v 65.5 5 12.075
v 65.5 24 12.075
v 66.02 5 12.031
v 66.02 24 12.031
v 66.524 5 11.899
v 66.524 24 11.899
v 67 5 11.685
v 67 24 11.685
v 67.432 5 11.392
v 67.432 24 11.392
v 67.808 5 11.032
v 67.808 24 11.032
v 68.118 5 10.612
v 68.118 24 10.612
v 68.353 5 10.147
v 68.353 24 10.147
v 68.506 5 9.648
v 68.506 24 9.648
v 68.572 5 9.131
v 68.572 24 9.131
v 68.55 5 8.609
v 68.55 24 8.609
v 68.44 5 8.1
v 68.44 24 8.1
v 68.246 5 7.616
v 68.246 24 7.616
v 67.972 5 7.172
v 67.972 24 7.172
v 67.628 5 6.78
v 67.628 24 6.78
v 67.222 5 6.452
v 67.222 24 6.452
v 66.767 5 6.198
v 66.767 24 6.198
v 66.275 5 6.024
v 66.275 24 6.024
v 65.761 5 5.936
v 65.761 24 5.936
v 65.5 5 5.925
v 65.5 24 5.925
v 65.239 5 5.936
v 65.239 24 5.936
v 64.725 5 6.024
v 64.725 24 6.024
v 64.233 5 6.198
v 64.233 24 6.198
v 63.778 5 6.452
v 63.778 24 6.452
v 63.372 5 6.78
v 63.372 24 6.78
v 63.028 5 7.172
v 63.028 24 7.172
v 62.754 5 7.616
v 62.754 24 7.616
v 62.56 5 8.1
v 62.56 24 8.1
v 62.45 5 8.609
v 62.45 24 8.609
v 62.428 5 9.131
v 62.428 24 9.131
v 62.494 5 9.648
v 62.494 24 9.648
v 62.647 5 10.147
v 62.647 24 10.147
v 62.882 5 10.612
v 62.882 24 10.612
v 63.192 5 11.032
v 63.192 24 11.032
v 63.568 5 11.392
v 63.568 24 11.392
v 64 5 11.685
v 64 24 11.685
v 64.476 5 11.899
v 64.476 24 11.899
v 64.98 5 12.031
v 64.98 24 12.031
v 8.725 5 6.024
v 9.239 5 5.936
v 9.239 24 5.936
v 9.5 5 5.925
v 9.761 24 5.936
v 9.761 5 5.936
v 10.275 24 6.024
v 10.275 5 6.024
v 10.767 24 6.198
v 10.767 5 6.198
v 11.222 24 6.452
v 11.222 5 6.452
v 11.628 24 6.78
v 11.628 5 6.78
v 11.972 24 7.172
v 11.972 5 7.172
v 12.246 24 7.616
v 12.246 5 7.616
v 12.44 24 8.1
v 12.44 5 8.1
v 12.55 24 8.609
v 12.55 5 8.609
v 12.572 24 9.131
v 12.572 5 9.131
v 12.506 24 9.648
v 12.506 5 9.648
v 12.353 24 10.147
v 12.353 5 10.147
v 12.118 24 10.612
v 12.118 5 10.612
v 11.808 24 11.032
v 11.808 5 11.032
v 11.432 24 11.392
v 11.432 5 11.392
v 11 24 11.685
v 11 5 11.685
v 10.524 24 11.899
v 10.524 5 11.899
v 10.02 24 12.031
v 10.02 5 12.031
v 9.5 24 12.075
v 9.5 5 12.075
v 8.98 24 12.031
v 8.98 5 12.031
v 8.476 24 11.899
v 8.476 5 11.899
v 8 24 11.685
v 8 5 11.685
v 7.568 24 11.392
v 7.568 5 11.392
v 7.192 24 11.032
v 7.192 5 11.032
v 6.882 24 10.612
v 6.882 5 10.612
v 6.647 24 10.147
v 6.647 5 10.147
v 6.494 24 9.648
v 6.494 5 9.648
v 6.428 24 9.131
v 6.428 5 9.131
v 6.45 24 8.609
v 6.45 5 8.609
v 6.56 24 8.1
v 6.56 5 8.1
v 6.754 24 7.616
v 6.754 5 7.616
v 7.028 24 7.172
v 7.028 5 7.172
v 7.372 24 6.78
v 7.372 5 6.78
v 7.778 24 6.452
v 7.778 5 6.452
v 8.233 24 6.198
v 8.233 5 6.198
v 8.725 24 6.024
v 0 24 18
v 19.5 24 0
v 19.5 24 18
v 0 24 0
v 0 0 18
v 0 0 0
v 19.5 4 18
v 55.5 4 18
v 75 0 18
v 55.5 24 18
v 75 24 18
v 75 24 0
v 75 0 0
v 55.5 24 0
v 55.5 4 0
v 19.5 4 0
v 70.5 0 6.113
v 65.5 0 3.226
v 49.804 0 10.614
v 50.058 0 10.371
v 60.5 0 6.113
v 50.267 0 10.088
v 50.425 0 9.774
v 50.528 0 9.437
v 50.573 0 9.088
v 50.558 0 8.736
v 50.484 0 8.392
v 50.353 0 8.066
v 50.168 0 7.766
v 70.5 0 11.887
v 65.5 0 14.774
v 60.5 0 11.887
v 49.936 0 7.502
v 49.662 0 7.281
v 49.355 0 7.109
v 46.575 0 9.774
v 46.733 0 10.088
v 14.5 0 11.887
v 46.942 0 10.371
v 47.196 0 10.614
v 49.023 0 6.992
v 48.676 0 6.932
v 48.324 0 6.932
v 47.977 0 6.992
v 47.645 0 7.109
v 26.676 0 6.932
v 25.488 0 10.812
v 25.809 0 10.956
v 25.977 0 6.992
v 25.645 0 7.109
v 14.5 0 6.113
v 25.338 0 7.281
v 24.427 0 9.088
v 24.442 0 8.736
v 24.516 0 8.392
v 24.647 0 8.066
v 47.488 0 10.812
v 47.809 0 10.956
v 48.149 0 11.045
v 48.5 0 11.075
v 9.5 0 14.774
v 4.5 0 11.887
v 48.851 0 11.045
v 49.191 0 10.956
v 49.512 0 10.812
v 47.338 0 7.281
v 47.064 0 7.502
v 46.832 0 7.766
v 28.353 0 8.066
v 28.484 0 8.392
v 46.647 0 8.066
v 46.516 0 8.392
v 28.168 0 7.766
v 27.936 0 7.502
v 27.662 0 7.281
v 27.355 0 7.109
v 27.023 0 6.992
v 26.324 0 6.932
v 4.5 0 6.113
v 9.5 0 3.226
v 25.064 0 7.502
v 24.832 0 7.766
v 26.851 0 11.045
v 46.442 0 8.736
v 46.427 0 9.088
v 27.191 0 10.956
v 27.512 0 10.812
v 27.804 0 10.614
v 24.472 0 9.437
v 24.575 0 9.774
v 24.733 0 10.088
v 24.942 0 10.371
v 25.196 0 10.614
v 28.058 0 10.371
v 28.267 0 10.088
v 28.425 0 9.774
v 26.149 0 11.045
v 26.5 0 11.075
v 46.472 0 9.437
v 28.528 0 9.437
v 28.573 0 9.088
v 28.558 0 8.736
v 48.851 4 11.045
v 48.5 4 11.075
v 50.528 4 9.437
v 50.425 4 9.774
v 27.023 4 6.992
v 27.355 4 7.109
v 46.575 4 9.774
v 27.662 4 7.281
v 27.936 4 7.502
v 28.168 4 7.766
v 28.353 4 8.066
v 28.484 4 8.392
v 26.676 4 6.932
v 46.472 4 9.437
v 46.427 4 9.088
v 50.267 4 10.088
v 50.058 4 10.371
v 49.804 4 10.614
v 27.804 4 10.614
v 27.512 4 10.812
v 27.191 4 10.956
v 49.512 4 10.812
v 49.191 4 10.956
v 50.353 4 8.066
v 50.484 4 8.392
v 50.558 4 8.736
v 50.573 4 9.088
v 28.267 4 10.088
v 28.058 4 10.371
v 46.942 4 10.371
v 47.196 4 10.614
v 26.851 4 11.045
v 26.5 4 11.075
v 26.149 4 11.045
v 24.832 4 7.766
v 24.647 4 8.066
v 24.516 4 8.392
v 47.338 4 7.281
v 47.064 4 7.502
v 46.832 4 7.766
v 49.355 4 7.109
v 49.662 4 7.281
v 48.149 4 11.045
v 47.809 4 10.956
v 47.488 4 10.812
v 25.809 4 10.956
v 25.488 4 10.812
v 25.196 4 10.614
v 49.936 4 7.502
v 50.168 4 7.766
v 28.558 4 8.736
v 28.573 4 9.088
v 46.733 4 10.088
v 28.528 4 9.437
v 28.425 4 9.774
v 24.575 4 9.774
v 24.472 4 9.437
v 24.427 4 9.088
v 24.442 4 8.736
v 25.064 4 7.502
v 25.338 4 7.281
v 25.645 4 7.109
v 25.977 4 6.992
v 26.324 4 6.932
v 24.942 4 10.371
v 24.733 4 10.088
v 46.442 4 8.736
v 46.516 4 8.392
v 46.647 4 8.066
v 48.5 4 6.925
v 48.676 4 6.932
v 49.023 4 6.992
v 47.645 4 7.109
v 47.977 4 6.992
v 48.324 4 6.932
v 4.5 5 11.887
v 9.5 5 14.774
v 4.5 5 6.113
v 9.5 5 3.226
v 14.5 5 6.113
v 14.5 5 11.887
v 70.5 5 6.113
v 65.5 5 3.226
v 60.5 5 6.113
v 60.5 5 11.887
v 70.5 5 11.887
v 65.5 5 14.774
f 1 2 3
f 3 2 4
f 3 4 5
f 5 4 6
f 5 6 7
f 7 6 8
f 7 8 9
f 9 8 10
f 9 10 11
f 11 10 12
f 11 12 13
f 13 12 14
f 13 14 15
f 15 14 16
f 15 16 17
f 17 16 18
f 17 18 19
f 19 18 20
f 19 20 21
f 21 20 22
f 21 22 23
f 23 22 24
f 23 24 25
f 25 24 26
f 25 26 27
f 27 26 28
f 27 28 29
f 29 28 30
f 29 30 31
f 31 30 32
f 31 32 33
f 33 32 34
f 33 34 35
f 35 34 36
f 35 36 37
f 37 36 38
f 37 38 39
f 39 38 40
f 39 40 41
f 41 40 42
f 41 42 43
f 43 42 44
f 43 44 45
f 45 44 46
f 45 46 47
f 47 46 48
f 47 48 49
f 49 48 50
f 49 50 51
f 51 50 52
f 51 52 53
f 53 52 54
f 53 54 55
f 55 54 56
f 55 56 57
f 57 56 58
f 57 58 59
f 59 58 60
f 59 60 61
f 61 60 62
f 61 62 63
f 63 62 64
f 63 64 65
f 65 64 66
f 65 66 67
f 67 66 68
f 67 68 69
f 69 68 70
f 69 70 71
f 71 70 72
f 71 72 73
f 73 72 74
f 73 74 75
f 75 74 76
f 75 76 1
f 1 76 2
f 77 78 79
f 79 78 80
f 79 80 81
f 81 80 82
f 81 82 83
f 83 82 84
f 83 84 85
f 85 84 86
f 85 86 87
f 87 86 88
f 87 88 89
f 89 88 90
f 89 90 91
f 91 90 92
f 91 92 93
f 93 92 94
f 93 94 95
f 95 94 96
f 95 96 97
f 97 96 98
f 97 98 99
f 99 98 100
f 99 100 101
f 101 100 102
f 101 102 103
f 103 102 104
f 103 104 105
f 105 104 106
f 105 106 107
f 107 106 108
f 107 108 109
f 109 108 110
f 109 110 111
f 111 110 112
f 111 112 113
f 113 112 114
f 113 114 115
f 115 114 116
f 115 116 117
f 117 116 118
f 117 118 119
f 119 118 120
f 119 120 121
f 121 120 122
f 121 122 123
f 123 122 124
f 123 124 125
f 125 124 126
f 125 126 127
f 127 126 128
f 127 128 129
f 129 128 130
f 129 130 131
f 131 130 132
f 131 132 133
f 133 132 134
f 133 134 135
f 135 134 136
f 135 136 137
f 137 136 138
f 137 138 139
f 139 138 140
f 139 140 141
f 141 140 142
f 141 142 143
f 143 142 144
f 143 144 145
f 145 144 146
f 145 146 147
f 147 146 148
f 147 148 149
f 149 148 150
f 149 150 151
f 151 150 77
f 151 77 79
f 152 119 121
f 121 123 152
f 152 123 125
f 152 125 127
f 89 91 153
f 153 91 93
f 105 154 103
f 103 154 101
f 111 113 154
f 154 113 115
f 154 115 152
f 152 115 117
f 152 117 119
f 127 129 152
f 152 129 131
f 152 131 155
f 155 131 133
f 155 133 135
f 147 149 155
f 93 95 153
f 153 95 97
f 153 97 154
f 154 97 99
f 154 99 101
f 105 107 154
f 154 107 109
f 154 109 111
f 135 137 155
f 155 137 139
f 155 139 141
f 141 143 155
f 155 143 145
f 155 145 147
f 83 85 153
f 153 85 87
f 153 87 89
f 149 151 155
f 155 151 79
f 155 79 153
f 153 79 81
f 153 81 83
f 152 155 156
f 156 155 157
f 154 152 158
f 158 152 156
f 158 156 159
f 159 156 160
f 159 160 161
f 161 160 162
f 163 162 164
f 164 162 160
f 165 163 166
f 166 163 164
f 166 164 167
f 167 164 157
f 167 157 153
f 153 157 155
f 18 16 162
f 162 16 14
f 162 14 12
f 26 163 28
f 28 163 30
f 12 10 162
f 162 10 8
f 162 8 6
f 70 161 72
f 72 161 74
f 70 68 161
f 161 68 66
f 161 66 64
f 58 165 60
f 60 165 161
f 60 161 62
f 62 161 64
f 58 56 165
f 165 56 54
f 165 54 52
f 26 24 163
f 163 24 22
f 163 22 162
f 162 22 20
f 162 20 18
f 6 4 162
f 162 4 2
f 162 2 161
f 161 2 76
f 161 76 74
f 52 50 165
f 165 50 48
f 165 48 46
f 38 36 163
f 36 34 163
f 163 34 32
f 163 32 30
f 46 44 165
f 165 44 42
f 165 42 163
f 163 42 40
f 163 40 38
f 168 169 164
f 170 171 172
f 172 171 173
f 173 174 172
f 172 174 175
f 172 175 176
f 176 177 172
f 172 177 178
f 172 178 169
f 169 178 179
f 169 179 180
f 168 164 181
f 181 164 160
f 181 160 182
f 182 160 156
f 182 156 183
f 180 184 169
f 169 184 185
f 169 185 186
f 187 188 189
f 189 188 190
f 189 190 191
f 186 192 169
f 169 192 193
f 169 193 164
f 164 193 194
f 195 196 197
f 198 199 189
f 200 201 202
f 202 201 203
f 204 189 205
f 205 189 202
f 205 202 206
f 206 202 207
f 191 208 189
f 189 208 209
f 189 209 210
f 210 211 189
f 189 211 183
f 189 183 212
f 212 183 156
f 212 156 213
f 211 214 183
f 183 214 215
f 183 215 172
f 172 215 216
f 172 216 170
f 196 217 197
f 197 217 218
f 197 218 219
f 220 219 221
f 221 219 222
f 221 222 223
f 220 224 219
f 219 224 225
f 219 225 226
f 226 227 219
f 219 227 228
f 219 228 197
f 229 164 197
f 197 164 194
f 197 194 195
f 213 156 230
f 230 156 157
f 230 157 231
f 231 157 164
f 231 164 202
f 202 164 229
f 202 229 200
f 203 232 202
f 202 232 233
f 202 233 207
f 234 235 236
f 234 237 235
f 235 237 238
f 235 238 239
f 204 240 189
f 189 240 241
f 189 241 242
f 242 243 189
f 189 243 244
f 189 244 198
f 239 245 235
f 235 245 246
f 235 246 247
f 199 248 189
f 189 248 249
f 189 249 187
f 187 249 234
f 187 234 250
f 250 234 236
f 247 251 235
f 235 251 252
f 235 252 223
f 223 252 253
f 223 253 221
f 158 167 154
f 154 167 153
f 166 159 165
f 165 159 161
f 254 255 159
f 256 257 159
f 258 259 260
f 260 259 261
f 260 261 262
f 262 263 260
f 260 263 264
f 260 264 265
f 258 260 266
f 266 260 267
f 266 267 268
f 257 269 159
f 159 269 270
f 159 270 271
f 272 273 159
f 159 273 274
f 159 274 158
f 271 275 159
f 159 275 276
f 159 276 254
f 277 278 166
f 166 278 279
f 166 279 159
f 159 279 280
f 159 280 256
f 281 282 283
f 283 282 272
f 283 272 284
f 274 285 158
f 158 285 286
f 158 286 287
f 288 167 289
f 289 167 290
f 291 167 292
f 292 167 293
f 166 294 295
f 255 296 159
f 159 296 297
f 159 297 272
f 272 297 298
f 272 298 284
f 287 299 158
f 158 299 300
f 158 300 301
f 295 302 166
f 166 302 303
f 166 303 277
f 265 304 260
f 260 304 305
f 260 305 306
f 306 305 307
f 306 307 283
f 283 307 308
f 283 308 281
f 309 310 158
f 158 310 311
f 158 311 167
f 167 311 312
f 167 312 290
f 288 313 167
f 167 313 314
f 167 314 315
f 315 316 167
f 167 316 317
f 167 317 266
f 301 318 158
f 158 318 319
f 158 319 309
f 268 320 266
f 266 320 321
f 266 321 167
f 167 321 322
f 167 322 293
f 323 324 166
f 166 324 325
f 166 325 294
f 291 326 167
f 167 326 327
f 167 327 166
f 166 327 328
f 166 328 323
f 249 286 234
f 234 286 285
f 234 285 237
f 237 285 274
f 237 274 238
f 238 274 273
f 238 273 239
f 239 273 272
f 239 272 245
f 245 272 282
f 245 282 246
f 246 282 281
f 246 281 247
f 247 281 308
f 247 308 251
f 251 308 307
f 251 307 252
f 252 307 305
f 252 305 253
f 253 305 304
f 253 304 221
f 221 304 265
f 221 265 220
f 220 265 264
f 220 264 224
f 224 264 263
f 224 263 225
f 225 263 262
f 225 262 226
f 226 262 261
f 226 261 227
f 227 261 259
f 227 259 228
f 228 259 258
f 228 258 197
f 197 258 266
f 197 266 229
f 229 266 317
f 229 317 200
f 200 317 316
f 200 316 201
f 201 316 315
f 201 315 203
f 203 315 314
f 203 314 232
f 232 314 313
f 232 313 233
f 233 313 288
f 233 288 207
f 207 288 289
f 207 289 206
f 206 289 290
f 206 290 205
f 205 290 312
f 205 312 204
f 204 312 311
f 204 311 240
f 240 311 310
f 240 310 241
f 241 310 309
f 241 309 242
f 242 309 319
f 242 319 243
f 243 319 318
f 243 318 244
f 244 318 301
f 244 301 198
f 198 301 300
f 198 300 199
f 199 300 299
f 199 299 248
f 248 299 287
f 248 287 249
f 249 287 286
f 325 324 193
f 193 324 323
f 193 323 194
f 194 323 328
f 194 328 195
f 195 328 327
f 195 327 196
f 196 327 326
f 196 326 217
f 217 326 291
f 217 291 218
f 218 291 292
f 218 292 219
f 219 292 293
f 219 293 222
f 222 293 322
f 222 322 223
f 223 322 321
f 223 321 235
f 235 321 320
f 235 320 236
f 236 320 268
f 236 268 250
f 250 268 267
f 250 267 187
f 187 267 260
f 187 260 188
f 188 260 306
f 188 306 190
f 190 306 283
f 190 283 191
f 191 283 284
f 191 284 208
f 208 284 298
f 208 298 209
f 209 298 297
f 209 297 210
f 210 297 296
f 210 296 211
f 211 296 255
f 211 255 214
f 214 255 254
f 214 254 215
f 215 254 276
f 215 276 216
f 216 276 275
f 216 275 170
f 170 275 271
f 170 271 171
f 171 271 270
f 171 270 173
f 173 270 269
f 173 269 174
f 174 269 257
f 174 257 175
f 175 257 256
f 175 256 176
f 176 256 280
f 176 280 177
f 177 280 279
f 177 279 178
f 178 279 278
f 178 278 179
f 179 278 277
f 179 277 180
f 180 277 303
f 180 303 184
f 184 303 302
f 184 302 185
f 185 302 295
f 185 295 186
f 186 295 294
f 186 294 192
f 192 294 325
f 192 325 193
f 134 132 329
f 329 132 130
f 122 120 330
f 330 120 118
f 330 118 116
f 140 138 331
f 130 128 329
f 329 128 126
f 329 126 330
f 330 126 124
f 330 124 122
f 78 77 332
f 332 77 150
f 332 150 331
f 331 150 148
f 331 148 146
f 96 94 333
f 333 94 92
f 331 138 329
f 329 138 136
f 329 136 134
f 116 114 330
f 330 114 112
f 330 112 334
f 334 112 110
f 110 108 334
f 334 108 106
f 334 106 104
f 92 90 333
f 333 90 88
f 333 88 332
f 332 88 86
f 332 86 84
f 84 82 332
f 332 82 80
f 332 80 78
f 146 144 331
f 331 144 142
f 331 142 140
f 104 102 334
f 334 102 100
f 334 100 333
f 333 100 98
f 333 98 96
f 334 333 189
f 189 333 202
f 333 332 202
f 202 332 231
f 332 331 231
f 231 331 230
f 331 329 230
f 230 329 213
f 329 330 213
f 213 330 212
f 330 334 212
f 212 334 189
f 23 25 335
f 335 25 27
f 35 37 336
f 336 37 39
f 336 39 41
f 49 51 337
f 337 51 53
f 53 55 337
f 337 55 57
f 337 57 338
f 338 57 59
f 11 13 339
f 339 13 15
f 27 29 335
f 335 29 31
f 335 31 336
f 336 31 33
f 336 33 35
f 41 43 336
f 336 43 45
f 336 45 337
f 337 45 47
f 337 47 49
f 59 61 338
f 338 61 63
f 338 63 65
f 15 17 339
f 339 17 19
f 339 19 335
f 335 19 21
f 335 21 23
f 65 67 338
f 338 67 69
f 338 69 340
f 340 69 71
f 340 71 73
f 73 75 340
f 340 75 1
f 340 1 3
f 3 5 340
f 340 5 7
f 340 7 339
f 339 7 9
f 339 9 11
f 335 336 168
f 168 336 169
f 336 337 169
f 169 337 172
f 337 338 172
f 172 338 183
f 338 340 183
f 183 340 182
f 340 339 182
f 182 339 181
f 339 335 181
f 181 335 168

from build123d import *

# Parameters (mm, degrees)
SKETCH1_W           = 75
SKETCH1_H           = 18
BOSS_EXTRUDE1_DEPTH = 24
SKETCH2_W           = 36
SKETCH2_H           = 18
CUT_EXTRUDE1_DEPTH  = 20
CUT_EXTRUDE2_REACH  = 81.681
SKETCH3_R           = 2.075
CUT_EXTRUDE4_REACH  = 82.777
SKETCH4_R           = 3.075
CUT_EXTRUDE5_DEPTH  = 5


with BuildPart() as part:
    # Sketch1 → Boss-Extrude1 (new body)
    with BuildSketch(Plane(origin=(0, 0, 0), x_dir=(1, 0, 0), z_dir=(0, 1, 0))):
        with Locations((37.5, -9)):
            Rectangle(SKETCH1_W, SKETCH1_H)
    extrude(amount=BOSS_EXTRUDE1_DEPTH)

    # Sketch2 → Cut-Extrude1 (cut)
    with BuildSketch(Plane(origin=(0, 24, 0), x_dir=(1, 0, 0), z_dir=(0, 1, 0))):
        with Locations((37.5, -9)):
            Rectangle(SKETCH2_W, SKETCH2_H)
    extrude(amount=-CUT_EXTRUDE1_DEPTH, mode=Mode.SUBTRACT)

    # Sketch3 → Cut-Extrude2 (cut, up to next)
    with BuildSketch(Plane(origin=(0, 4, 0), x_dir=(1, 0, 0), z_dir=(0, 1, 0)), mode=Mode.PRIVATE) as cut_extrude2_sk1:
        with Locations(Location((26.5, -9, 0), (0, 0, 270))):
            Circle(SKETCH3_R)
    cut_extrude2_tool1 = extrude(cut_extrude2_sk1.sketch, amount=-CUT_EXTRUDE2_REACH, mode=Mode.PRIVATE) & part.part
    # Sketch3 → Cut-Extrude2 (cut, up to next)
    with BuildSketch(Plane(origin=(0, 4, 0), x_dir=(1, 0, 0), z_dir=(0, 1, 0)), mode=Mode.PRIVATE) as cut_extrude2_sk2:
        with Locations(Location((48.5, -9, 0), (0, 0, 270))):
            Circle(SKETCH3_R)
    cut_extrude2_tool2 = extrude(cut_extrude2_sk2.sketch, amount=-CUT_EXTRUDE2_REACH, mode=Mode.PRIVATE) & part.part
    add(cut_extrude2_tool1.solids().sort_by_distance((26.5, 4, 9))[0], mode=Mode.SUBTRACT)
    add(cut_extrude2_tool2.solids().sort_by_distance((48.5, 4, 9))[0], mode=Mode.SUBTRACT)

    # Sketch4 → Cut-Extrude4 (cut, up to next)
    with BuildSketch(Plane(origin=(0, 24, 0), x_dir=(1, 0, 0), z_dir=(0, 1, 0)), mode=Mode.PRIVATE) as cut_extrude4_sk1:
        with Locations(Location((9.5, -9, 0), (0, 0, 270))):
            Circle(SKETCH4_R)
    cut_extrude4_tool1 = extrude(cut_extrude4_sk1.sketch, amount=-CUT_EXTRUDE4_REACH, mode=Mode.PRIVATE) & part.part
    # Sketch4 → Cut-Extrude4 (cut, up to next)
    with BuildSketch(Plane(origin=(0, 24, 0), x_dir=(1, 0, 0), z_dir=(0, 1, 0)), mode=Mode.PRIVATE) as cut_extrude4_sk2:
        with Locations(Location((65.5, -9, 0), (0, 0, 270))):
            Circle(SKETCH4_R)
    cut_extrude4_tool2 = extrude(cut_extrude4_sk2.sketch, amount=-CUT_EXTRUDE4_REACH, mode=Mode.PRIVATE) & part.part
    add(cut_extrude4_tool1.solids().sort_by_distance((9.5, 24, 9))[0], mode=Mode.SUBTRACT)
    add(cut_extrude4_tool2.solids().sort_by_distance((65.5, 24, 9))[0], mode=Mode.SUBTRACT)

    # Sketch5 → Cut-Extrude5 (cut)
    with BuildSketch(Plane.XZ):
        Polygon((14.5, 11.886751346), (9.5, 14.773502692), (4.5, 11.886751346), (4.5, 6.113248654), (9.5, 3.226497308), (14.5, 6.113248654), align=None)
        Polygon((70.5, 6.113248654), (70.5, 11.886751346), (65.5, 14.773502692), (60.5, 11.886751346), (60.5, 6.113248654), (65.5, 3.226497308), align=None)
    extrude(amount=-CUT_EXTRUDE5_DEPTH, mode=Mode.SUBTRACT)


solid = part.part
